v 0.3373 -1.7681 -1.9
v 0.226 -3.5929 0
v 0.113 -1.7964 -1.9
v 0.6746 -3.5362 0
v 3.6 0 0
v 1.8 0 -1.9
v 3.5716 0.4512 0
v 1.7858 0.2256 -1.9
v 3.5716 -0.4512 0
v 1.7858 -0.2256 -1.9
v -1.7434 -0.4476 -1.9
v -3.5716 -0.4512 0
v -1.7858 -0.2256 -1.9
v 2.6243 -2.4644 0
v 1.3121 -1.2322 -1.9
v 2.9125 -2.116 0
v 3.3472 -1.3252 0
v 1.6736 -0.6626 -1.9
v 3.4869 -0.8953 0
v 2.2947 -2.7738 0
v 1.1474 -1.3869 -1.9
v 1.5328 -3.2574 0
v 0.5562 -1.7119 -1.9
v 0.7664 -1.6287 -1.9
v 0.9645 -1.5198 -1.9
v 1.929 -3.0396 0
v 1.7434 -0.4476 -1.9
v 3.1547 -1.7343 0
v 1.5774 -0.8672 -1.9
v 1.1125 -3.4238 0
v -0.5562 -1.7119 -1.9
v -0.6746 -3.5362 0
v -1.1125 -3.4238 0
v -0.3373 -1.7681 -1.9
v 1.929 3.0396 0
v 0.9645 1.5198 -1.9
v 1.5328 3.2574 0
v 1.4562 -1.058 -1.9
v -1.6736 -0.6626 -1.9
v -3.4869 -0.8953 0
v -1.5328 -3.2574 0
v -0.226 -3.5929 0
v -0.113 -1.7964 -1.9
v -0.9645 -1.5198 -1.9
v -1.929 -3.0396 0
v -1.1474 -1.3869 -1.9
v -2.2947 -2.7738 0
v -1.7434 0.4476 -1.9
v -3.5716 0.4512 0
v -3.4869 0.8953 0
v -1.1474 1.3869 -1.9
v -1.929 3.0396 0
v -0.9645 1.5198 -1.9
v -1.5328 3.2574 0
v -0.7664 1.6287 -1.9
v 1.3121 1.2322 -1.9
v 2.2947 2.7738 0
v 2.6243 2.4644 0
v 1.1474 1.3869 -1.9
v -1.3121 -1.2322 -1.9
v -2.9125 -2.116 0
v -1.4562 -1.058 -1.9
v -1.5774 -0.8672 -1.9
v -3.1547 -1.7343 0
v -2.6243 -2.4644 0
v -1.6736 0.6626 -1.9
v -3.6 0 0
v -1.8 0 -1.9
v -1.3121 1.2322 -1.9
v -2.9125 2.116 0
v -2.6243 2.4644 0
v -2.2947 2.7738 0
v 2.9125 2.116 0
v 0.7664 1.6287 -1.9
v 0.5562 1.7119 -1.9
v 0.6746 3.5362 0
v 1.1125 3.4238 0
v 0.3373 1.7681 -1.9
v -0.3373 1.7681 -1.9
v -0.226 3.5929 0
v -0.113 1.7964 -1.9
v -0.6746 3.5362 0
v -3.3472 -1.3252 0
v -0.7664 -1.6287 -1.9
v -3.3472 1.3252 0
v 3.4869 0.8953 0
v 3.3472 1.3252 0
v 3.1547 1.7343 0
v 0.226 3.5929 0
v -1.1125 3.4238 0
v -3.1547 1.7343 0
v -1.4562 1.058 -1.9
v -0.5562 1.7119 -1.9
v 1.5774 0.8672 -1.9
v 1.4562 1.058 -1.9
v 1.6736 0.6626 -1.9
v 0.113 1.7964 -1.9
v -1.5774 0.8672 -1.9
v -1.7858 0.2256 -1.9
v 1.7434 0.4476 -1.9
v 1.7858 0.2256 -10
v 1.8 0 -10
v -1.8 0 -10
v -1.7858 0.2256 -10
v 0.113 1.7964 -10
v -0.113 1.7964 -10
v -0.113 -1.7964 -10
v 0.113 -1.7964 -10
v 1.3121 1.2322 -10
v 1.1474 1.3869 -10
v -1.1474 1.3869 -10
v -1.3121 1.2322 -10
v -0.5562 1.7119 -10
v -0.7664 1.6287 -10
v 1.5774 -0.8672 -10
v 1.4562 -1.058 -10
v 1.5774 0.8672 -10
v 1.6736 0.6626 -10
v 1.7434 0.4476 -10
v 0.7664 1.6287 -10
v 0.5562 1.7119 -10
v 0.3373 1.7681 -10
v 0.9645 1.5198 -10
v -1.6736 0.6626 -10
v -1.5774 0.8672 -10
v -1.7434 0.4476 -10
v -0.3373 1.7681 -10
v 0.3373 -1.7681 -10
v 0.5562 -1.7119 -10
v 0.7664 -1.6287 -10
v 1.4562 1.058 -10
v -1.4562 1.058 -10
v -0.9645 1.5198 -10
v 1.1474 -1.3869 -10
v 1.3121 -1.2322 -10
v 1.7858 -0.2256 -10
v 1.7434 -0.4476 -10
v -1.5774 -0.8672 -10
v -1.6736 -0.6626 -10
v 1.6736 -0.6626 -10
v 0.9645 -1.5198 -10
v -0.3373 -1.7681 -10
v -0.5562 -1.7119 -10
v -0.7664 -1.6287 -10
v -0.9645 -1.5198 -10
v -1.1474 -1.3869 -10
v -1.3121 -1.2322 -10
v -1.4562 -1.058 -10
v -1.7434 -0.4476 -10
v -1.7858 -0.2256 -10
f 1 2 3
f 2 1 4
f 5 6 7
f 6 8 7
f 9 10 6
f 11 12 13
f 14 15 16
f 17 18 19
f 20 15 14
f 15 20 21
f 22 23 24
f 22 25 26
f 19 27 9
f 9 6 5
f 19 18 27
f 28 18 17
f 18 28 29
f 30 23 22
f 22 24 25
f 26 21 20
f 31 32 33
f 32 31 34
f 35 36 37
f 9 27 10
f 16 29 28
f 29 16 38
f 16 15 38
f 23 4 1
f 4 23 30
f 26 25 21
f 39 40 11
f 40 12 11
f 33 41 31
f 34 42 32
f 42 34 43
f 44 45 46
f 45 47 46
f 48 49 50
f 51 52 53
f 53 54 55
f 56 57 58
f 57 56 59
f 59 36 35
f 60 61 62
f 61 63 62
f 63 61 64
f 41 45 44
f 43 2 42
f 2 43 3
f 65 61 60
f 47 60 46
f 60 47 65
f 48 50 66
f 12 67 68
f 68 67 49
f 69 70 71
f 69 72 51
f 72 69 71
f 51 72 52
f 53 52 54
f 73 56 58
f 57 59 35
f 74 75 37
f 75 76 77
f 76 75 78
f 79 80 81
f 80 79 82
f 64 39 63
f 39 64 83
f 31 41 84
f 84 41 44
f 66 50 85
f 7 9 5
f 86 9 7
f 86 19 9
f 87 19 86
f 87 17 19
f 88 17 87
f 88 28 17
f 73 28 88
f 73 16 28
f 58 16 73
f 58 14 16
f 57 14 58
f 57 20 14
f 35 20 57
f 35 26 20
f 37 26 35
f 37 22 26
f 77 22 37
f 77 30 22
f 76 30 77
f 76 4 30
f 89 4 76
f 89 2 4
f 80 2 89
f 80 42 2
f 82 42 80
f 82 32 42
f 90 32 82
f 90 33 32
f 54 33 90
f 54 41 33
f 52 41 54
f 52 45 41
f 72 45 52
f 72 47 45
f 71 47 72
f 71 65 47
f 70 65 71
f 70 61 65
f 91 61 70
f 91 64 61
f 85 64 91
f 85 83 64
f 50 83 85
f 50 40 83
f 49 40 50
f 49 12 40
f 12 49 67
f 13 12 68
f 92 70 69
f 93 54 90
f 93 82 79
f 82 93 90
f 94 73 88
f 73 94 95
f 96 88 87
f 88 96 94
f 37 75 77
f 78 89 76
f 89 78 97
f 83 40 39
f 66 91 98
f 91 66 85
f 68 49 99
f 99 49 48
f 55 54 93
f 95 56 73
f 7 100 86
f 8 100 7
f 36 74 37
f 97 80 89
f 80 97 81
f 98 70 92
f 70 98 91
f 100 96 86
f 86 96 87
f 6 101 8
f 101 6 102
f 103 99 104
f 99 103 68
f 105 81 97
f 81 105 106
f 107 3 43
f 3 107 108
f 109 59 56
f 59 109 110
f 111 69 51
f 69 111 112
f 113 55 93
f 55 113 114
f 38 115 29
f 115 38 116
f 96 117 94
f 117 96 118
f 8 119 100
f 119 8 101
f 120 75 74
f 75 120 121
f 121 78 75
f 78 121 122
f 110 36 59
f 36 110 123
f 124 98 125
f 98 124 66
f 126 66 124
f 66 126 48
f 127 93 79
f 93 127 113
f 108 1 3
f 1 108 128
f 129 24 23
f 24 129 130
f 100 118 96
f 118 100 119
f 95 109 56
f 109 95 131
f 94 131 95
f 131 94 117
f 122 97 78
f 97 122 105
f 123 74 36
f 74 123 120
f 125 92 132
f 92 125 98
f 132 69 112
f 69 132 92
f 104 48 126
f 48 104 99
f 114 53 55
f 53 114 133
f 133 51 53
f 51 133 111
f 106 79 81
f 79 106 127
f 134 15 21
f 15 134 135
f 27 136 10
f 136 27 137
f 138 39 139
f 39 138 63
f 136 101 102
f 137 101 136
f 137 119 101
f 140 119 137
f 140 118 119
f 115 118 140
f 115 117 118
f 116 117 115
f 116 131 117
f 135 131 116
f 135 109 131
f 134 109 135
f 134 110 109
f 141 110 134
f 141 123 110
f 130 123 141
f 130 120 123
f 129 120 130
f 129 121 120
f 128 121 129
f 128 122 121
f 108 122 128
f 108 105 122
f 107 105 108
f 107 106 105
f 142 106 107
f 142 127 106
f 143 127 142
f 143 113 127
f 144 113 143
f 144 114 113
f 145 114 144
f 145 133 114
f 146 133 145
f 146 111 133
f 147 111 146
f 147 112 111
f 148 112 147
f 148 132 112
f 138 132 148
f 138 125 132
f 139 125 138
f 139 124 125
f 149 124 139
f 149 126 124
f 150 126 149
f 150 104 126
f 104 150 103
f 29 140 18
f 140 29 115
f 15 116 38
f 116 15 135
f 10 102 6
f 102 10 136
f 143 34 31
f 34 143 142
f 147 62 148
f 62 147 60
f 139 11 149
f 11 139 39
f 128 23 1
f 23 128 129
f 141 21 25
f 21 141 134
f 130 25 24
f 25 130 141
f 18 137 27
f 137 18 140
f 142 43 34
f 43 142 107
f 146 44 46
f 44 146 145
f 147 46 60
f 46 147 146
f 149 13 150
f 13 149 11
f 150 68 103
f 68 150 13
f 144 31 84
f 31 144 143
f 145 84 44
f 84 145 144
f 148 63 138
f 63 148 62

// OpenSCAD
$fn = 50;


difference() {
	union() {
		translate(v = [0, 0, -1.9000000000]) {
			rotate(a = [0, 0, 0]) {
				cylinder(h = 1.9000000000, r1 = 1.8000000000, r2 = 3.6000000000);
			}
		}
		translate(v = [0, 0, -10]) {
			rotate(a = [0, 0, 0]) {
				cylinder(h = 10, r = 1.8000000000);
			}
		}
	}
	union();
}
